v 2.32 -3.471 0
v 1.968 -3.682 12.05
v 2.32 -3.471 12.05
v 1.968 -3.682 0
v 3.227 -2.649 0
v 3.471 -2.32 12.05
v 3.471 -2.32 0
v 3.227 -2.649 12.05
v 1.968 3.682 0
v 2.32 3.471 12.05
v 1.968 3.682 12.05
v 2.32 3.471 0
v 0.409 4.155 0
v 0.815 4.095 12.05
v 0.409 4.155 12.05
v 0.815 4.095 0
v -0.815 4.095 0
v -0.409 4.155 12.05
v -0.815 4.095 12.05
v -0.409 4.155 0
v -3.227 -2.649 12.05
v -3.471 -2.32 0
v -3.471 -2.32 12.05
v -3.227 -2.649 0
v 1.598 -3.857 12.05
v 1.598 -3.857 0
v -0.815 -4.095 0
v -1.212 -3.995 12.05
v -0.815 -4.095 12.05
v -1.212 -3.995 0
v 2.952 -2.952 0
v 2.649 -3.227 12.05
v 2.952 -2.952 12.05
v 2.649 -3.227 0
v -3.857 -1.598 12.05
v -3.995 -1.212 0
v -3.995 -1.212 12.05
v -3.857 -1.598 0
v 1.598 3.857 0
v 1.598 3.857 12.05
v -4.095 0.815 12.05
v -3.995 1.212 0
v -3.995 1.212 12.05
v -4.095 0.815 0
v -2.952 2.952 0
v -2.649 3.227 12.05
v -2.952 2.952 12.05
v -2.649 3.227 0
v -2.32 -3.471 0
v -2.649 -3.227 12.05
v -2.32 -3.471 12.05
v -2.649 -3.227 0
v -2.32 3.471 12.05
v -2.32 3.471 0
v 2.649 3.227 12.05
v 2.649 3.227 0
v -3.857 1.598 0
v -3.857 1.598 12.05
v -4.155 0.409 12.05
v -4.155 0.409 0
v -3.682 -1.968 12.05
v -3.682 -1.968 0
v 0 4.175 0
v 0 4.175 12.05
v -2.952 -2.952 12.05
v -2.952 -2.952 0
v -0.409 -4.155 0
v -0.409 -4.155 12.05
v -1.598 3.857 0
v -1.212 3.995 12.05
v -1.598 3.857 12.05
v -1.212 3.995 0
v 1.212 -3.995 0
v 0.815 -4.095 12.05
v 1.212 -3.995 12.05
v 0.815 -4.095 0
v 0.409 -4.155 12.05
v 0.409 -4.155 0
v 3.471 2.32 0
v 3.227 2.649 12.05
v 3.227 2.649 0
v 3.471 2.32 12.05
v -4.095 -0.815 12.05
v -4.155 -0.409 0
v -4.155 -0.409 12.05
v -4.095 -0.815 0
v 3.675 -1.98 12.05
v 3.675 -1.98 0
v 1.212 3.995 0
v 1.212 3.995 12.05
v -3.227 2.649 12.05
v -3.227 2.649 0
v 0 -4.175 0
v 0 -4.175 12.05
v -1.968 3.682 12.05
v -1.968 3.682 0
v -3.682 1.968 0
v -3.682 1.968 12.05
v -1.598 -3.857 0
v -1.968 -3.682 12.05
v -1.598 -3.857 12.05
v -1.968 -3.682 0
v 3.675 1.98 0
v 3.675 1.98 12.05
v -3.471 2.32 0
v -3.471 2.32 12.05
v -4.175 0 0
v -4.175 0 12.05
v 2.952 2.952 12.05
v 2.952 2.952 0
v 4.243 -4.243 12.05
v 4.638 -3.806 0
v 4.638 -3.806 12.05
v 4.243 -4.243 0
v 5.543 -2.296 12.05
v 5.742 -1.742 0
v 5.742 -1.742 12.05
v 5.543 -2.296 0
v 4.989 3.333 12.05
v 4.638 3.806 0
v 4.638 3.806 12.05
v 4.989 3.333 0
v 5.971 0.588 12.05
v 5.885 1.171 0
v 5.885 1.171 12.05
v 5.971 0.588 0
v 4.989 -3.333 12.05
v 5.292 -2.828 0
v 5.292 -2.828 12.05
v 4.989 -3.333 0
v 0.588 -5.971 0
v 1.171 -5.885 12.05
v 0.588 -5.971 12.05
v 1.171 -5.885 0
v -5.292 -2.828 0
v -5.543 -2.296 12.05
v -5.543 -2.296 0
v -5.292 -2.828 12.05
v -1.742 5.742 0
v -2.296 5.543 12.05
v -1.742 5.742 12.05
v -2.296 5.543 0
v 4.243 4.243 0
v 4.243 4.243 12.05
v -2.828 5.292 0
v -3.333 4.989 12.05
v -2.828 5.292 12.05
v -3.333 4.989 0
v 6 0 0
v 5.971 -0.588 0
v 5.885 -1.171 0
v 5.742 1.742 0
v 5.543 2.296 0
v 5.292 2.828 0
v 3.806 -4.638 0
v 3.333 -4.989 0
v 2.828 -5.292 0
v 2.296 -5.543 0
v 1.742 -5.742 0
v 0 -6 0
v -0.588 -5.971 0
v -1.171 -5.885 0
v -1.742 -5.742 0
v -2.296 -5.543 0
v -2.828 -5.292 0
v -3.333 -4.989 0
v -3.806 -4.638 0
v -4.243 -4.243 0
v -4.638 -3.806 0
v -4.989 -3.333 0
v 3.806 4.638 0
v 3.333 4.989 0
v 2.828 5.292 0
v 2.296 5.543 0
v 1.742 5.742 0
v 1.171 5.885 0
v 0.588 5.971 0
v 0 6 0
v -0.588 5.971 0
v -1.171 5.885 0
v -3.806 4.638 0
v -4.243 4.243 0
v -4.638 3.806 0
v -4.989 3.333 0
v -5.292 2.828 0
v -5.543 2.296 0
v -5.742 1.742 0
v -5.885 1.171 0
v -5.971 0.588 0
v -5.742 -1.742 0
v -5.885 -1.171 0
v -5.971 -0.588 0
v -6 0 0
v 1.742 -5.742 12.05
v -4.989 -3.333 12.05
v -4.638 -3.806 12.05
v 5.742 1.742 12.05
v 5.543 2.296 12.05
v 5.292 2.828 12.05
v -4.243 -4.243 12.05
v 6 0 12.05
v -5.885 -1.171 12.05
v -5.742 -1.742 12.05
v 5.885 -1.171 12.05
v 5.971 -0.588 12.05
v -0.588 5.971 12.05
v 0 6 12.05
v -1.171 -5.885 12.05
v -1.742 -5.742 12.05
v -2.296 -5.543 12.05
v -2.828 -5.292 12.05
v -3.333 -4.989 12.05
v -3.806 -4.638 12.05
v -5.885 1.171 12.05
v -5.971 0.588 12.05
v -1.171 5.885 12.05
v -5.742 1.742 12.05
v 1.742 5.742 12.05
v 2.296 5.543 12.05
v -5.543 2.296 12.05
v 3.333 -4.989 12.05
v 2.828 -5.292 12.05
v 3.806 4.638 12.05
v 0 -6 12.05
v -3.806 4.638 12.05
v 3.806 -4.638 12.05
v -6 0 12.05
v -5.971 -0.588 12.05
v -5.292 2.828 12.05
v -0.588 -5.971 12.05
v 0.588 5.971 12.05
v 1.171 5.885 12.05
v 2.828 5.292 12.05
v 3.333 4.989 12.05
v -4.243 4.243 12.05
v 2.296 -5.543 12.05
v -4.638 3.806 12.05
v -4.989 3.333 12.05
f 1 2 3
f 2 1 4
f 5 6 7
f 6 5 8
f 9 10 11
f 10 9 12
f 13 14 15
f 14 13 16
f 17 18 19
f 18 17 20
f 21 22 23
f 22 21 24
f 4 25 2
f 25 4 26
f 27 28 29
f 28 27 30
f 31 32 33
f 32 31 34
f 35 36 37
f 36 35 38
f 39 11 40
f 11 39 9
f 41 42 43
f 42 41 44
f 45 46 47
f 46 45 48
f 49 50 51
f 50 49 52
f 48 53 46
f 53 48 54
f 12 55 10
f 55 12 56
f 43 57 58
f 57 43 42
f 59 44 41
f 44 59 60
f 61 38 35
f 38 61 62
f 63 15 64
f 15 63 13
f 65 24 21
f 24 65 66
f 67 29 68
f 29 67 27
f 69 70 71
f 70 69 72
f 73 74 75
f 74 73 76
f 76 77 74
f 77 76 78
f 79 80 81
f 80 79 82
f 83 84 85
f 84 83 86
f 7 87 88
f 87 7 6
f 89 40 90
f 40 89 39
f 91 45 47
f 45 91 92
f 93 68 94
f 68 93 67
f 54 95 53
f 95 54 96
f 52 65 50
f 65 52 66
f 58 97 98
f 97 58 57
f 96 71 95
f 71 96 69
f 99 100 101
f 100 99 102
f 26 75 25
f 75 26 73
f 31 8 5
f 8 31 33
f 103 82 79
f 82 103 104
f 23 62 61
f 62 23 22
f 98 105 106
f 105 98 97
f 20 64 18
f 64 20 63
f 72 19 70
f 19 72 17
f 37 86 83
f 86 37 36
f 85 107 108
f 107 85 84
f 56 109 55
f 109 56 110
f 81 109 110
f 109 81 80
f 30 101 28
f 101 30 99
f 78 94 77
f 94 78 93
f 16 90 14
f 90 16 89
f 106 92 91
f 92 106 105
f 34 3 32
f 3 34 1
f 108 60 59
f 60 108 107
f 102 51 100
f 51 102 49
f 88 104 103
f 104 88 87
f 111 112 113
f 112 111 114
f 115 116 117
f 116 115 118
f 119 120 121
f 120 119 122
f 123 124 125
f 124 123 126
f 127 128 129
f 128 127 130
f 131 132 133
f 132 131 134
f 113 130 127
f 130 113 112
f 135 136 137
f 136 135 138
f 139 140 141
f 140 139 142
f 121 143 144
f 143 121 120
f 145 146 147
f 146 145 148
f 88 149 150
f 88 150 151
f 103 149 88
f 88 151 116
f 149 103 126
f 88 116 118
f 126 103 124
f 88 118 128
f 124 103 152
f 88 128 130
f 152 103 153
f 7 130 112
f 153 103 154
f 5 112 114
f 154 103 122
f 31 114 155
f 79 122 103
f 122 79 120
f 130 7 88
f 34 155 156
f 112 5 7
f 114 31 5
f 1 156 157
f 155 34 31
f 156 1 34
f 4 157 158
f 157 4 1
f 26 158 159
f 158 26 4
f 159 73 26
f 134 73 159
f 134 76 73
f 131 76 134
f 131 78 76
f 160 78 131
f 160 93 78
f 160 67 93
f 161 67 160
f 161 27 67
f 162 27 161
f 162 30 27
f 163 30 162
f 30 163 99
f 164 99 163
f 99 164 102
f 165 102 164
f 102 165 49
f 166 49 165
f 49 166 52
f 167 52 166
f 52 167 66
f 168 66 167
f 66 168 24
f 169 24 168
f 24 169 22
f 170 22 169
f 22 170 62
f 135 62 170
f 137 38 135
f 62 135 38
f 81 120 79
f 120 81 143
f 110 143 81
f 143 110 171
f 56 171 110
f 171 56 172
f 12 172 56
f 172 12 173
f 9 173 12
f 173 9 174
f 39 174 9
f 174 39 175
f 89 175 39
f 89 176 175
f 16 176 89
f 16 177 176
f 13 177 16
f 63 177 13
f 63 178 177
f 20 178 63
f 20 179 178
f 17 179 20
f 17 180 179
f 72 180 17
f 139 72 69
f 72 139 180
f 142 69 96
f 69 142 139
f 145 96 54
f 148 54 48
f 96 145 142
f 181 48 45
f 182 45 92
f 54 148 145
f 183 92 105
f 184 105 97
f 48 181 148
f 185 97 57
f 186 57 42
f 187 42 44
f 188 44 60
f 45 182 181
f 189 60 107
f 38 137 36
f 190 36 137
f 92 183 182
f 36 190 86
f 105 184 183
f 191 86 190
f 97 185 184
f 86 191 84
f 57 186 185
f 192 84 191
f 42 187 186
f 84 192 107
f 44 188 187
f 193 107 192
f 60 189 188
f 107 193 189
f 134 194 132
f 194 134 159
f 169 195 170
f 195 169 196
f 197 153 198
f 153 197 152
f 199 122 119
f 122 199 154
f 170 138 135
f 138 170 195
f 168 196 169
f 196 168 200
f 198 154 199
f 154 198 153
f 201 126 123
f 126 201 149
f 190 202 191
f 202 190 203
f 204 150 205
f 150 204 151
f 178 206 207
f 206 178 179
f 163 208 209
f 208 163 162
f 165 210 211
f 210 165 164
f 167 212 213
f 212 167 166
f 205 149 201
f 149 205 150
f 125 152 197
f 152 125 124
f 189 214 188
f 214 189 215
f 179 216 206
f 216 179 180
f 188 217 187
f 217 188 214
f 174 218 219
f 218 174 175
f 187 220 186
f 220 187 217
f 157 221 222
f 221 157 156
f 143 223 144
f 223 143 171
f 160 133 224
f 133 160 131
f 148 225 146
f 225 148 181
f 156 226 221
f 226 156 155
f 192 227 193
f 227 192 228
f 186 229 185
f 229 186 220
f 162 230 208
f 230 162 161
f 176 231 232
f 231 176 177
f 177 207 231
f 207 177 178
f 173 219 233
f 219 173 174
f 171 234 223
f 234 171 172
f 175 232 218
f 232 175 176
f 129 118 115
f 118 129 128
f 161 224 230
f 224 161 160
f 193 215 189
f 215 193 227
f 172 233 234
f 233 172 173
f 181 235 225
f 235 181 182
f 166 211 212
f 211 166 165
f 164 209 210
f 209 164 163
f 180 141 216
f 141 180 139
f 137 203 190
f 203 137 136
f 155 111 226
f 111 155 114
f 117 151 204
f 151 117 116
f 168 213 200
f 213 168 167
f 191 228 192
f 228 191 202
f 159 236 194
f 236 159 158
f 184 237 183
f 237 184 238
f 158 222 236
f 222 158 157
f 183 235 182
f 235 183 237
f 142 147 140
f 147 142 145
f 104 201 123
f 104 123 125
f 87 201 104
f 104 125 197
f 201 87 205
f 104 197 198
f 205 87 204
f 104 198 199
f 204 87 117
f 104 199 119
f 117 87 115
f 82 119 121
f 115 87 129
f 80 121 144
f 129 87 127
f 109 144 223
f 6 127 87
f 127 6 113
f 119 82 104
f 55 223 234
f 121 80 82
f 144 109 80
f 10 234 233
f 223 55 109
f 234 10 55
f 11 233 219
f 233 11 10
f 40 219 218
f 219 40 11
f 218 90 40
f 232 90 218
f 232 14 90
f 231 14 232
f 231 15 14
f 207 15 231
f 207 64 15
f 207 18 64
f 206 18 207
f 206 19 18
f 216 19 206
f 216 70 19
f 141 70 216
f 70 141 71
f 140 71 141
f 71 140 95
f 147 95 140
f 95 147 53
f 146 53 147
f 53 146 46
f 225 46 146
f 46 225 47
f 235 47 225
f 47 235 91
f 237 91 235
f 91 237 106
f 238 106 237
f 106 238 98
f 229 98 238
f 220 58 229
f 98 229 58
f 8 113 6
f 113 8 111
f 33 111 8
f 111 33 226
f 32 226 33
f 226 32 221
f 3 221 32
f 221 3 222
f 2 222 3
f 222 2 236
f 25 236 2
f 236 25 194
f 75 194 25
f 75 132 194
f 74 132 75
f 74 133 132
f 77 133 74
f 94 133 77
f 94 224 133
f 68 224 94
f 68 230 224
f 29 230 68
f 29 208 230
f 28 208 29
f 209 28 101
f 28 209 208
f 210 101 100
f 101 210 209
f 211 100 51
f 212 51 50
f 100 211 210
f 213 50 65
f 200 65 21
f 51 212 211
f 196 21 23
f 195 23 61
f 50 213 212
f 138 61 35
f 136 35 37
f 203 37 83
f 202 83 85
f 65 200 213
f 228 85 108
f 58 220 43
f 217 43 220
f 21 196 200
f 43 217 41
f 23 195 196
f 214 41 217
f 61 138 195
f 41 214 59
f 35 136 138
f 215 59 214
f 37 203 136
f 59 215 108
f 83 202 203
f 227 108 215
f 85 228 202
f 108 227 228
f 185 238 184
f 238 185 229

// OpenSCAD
// file: parameters.scad
// =============================================================================
// Gen-BQ — nightly 2026-10-07 (physics_scorer, honest magpylib watts)
// Smooth-torque 8-pole / 9-coil line (winding factor 0.945, much lower cogging than 6-coil) with tonight's gap levers: flush 5.00 mm through-pocket seat, 0.8 mm bobbin lip (wider 35–70 mm sectors) and a ±8 mm Ø5 map at R44/52/60, on the Gen-BN Ø138 × 4.76 mm steel. Improves Gen-BN 4.166 W but 9 coils still lose to 6 coils under the wire budget.
// Clocking 0 deg (magnets N facing S) + D-flat keyed bore + index notch + flip-symmetric hole map.
// Windable 2-piece bobbin; turns = physics_scorer turns_fit; copper only between flanges.
// Steel back-iron: 2× Ø138 × 4.76 mm (3/16") mild-steel discs (steel_backiron_disc.dxf); magnets sit ON the steel
// (through-pockets) -> score with --back-iron.
// =============================================================================
topology            = "dual_rotor";

// --- Wire / winding (physics_scorer winding-fit) -------------------------------
wire_awg            = 26;
wire_od             = 0.45;     // insulated OD mm (bare 0.405)
fill_realistic      = 0.65;     // insulated-wire area / window (DENSE layered wind with a jig; scorer cap 0.65)
turns               = 486;       // = physics_scorer turns_fit (do NOT raise)
coil_former_type    = "bobbin";
coil_core_inset     = 12.60;     // radial copper build: hub = copper boundary inset by this
wind_build_axial    = 0.0;      // nothing proud of the flanges
wind_build_radial   = 0.0;

// --- Bobbin (base + lid) ---------------------------------------------------------
coil_id_r           = 35.00;    // copper boundary sector
coil_od_r           = 70.00;
span_deg            = 34.6;    // = pitch - 2*asin((wall+0.85)/coil_id_r) -> >=1.2 mm stator web
former_web          = 9.45;     // copper height between flanges (TALL copper: steel keeps Bz up)
flange_t            = 0.80;     // >= 0.8 mm FDM wall rule (tall winds push on the flanges)
wall                = 0.80;     // flange lip beyond copper
former_bare_h       = former_web + 2 * flange_t;
coil_envelope_h     = former_bare_h + 2 * wind_build_axial;
tab_w               = 7.0;
tab_len             = 7.0;
tab_h               = former_bare_h / 2;
pin_d               = 1.9;      // 1.75 mm filament locating pin
coil_mount_r        = coil_od_r + 0.2 + 4.0;
lead_y              = 1.6;
lead_slot_w         = 0.9;
lead_groove_d       = 0.6;

// --- Gap -------------------------------------------------------------------------
run_clear           = 0.50;     // rotor face -> flange
gap_spacer_h        = run_clear + wind_build_axial;
m2m                 = coil_envelope_h + 2 * run_clear;   // rotor face to rotor face (= gap_sleeve length)

// --- Stator ----------------------------------------------------------------------
coil_stations       = 9;
bay_clear           = 0.25;
stator_thick        = former_bare_h;                        // bobbins flush both faces
stator_od           = 160.0;
shaft_clear_stator  = 14.0;     // stator is static; gap sleeve OD 12 spins inside

// --- Rotor(s) --------------------------------------------------------------------
magnet_Br           = 1.43;     // N52
magnet_d_large      = 20.0;
magnet_h_large      = 5.0;      // one O20x5 per pocket
magnet_h_small      = 5.0;      // one O5x5 per pocket
halbach_magnetisation = "diametric"; // O5x5 assist magnets MUST be DIAMETRICALLY magnetised (tangential)
rotor_b_same_axis   = true;     // same-index magnets share one axis: N faces S across the gap
large_pocket_d      = 20.3;
small_pocket_d      = 5.3;
pocket_h            = 5.00;     // THROUGH the carrier: magnet back face sits on the steel disc (FLUSH seat: carrier = magnet height, magnet face level with the rotor face)
large_n             = 8;
R_large             = 52.0;
R_small_inner       = 44.0;
R_small_mid         = 52.0;
R_small_outer       = 60.0;
small_r_list        = [R_small_inner, R_small_mid, R_small_outer];   // O5 pockets between poles
carrier_od          = 138.0;
carrier_thick       = pocket_h;
hub_h               = 12.0;     // > steel_t + insert: radial set-screw clears the steel
hub_od              = 24.0;     // slim hub so the M4 brace rods fit at R~18 inside the coil ring
hub_insert_d        = 4.0;      // M3 heat-set insert, radial, bears on the D-flat
rotor_b_offset_deg  = 0.0;      // CLOCKING: magnets directly opposite
shaft_key           = "dflat";
dflat_depth         = 0.5;      // 8 mm shaft with 0.5 mm flat (7.5 across flat)
index_notch_d       = 3.0;

// --- Steel back-iron (buyable laser-cut) -------------------------------------------
steel_t             = 4.76;      // mild steel thickness (image method ignores it; sized from steel_flux.py so the return path stays well below saturation)
steel_center_hole   = 26.0;     // slips over the rotor hub (OD 24)
steel_od            = carrier_od;   // steel disc OD = rotor carrier OD

// --- Modular MAX interface ----------------------------------------------------------
shaft_bore          = 8.35;
dflat_x             = 4.0 - dflat_depth + (shaft_bore - 8.0) / 2;
bearing_d           = 21.85;
bearing_h           = 7.2;
m3_clear            = 3.5;
bolt_r_inner        = 30.0;     // M3 steel-disc clamp bolts (inside the magnet ring)
bolt_n_inner        = 4;
bolt_inner_angles   = [0, 90, 180, 270];
bolt_r_outer        = 65.0;     // M3 steel-disc clamp bolts (outside the magnet ring)
bolt_outer_angles   = [45, 135, 225, 315];
flange_bolt_r       = 75.0;     // frame rods: OUTSIDE the rotor OD (rotors spin inside them)
flange_bolt_n       = 9;
flange_bolt_offset  = 20.00;    // between coil stations -> never cuts a lead groove/tab
brace_r             = 18.0;
brace_d             = 4.3;      // temporary M4 jack rods (assembly only)
brace_n             = 4;
brace_angles        = [45, 135, 225, 315];          // flip-symmetric

spacer_pad_od       = 14.0;
spacer_pad_id       = m3_clear;
endbell_od          = 160.0;
endbell_thick       = 8.0;
endbell_shaft_clear = 10.0;
collar_h            = 10.0;
standoff_od         = 9.0;
frame_standoff_h    = run_clear + carrier_thick + hub_h + collar_h + 2.0;
sleeve_od           = 12.0;
plate_max_mm        = 410;

$fn = 64;
// main file
// Gen-BQ — gap sleeve: rigid spacer on the shaft BETWEEN the two rotor carriers (passes through the stator
// hole). Length = m2m, so it sets the magnet gap and carries the full magnet pull. Print x1, upright.
include <parameters.scad>;
$fn = 64;
// D-flat keyed bore: flat faces +X (angle 0 = magnet pocket 0 = index notch)
module dflat_bore(h) {
    intersection() {
        cylinder(d=shaft_bore, h=h);
        translate([-shaft_bore, -shaft_bore, 0]) cube([shaft_bore + dflat_x, 2*shaft_bore, h]);
    }
}

difference() {
    cylinder(d=sleeve_od, h=m2m);
    translate([0, 0, -0.1]) dflat_bore(m2m + 0.2);
}
